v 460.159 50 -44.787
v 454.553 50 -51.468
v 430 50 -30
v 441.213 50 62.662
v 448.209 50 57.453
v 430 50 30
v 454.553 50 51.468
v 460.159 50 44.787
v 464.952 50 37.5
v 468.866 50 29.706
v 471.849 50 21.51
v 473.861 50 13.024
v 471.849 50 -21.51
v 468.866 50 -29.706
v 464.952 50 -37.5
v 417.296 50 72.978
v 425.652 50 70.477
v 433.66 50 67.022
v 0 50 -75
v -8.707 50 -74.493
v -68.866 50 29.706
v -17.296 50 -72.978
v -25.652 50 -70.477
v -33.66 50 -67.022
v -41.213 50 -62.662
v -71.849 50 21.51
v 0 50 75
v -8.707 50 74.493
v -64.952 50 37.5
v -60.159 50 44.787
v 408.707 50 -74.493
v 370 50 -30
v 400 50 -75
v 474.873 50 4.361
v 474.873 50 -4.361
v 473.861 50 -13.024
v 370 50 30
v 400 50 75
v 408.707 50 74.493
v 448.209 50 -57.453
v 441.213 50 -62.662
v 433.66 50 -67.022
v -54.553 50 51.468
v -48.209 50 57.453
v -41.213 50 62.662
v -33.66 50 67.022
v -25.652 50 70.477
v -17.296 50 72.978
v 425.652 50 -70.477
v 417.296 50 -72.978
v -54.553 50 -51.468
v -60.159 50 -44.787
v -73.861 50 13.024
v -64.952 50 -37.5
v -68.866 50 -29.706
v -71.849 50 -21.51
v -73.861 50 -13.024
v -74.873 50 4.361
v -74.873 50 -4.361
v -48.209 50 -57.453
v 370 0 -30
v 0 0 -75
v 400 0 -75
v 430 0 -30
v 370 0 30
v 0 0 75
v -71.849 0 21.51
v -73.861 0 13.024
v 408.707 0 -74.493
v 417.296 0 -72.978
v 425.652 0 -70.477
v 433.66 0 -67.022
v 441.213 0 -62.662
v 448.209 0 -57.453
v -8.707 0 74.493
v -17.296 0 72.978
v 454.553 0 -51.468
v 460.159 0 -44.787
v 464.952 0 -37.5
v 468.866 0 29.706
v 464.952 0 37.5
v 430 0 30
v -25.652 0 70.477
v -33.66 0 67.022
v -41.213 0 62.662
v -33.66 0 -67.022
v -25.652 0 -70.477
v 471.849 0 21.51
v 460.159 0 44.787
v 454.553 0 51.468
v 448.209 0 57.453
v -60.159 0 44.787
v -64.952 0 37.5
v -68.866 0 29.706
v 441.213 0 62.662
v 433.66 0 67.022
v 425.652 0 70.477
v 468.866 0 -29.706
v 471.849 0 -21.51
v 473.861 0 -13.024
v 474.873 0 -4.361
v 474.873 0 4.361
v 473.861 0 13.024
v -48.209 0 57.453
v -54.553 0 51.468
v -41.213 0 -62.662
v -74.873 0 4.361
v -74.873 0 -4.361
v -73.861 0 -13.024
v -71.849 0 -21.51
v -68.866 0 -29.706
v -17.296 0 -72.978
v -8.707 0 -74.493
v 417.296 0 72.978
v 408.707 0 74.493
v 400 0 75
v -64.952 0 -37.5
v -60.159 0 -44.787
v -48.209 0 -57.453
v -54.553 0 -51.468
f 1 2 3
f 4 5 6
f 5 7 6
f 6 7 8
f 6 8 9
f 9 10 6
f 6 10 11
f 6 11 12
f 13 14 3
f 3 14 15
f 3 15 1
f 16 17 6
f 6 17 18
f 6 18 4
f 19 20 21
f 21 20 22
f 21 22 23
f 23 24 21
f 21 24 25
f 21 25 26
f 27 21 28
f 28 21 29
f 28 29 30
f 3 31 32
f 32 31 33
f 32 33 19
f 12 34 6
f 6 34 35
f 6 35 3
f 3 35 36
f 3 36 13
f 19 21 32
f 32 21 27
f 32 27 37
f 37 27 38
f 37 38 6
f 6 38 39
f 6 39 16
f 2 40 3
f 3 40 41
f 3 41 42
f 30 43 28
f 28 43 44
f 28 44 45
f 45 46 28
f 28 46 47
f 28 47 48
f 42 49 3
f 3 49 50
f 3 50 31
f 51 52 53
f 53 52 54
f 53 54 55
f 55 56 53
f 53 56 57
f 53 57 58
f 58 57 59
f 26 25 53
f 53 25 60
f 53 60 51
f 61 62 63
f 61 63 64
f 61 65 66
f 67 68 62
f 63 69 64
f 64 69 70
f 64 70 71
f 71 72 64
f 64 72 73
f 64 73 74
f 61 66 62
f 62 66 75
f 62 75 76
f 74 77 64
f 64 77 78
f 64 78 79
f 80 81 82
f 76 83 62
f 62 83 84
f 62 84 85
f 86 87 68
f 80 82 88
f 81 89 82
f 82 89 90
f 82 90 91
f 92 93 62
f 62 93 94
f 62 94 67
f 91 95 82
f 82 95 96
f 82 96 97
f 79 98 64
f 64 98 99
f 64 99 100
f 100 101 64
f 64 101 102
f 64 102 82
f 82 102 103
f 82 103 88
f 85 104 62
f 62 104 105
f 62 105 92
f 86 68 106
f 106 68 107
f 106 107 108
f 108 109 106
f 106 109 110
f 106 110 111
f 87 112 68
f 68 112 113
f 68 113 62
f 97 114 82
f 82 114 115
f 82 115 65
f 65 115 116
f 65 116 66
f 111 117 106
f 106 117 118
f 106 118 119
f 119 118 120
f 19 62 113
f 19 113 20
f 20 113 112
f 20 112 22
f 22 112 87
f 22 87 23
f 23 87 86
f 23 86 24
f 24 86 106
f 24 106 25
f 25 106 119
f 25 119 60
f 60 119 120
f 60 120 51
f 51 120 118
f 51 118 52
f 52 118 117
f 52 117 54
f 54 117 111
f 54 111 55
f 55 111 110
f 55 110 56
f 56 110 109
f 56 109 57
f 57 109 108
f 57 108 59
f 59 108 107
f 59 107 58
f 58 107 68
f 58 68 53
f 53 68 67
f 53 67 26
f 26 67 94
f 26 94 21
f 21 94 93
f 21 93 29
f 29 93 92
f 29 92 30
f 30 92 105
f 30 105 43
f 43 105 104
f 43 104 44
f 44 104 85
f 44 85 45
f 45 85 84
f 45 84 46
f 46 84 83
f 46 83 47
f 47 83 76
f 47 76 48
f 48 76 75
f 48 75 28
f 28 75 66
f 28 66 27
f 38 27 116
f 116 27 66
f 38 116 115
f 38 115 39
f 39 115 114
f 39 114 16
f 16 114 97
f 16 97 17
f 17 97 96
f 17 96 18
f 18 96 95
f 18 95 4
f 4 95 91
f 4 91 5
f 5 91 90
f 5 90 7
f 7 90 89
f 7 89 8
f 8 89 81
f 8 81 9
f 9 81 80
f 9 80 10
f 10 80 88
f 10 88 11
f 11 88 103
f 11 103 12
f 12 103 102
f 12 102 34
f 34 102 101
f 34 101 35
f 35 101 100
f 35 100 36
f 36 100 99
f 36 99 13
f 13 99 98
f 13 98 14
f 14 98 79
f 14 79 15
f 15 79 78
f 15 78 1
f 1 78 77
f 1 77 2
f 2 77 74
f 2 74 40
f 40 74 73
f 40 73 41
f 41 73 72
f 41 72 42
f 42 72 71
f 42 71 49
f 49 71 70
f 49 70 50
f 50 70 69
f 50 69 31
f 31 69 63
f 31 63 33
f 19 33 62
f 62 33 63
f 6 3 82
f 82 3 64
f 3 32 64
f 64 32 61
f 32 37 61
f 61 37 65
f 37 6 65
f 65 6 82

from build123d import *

# Parameters (mm, degrees)
SKETCH_1_W      = 60
SKETCH_1_H      = 60
EXTRUDE_1_DEPTH = 50


with BuildPart() as part:
    # 草图1 → 凸台-拉伸1 (new body)
    with BuildSketch(Plane(origin=(0, 0, 0), x_dir=(1, 0, 0), z_dir=(0, 1, 0))):
        with BuildLine():
            Line((0, 75), (400, 75))
            ThreePointArc((400, 75), (475, 0), (400, -75))
            Line((400, -75), (0, -75))
            ThreePointArc((0, -75), (-75, 0), (0, 75))
        make_face()
        with Locations((400, 0)):
            Rectangle(SKETCH_1_W, SKETCH_1_H, mode=Mode.SUBTRACT)
    extrude(amount=EXTRUDE_1_DEPTH)


solid = part.part
